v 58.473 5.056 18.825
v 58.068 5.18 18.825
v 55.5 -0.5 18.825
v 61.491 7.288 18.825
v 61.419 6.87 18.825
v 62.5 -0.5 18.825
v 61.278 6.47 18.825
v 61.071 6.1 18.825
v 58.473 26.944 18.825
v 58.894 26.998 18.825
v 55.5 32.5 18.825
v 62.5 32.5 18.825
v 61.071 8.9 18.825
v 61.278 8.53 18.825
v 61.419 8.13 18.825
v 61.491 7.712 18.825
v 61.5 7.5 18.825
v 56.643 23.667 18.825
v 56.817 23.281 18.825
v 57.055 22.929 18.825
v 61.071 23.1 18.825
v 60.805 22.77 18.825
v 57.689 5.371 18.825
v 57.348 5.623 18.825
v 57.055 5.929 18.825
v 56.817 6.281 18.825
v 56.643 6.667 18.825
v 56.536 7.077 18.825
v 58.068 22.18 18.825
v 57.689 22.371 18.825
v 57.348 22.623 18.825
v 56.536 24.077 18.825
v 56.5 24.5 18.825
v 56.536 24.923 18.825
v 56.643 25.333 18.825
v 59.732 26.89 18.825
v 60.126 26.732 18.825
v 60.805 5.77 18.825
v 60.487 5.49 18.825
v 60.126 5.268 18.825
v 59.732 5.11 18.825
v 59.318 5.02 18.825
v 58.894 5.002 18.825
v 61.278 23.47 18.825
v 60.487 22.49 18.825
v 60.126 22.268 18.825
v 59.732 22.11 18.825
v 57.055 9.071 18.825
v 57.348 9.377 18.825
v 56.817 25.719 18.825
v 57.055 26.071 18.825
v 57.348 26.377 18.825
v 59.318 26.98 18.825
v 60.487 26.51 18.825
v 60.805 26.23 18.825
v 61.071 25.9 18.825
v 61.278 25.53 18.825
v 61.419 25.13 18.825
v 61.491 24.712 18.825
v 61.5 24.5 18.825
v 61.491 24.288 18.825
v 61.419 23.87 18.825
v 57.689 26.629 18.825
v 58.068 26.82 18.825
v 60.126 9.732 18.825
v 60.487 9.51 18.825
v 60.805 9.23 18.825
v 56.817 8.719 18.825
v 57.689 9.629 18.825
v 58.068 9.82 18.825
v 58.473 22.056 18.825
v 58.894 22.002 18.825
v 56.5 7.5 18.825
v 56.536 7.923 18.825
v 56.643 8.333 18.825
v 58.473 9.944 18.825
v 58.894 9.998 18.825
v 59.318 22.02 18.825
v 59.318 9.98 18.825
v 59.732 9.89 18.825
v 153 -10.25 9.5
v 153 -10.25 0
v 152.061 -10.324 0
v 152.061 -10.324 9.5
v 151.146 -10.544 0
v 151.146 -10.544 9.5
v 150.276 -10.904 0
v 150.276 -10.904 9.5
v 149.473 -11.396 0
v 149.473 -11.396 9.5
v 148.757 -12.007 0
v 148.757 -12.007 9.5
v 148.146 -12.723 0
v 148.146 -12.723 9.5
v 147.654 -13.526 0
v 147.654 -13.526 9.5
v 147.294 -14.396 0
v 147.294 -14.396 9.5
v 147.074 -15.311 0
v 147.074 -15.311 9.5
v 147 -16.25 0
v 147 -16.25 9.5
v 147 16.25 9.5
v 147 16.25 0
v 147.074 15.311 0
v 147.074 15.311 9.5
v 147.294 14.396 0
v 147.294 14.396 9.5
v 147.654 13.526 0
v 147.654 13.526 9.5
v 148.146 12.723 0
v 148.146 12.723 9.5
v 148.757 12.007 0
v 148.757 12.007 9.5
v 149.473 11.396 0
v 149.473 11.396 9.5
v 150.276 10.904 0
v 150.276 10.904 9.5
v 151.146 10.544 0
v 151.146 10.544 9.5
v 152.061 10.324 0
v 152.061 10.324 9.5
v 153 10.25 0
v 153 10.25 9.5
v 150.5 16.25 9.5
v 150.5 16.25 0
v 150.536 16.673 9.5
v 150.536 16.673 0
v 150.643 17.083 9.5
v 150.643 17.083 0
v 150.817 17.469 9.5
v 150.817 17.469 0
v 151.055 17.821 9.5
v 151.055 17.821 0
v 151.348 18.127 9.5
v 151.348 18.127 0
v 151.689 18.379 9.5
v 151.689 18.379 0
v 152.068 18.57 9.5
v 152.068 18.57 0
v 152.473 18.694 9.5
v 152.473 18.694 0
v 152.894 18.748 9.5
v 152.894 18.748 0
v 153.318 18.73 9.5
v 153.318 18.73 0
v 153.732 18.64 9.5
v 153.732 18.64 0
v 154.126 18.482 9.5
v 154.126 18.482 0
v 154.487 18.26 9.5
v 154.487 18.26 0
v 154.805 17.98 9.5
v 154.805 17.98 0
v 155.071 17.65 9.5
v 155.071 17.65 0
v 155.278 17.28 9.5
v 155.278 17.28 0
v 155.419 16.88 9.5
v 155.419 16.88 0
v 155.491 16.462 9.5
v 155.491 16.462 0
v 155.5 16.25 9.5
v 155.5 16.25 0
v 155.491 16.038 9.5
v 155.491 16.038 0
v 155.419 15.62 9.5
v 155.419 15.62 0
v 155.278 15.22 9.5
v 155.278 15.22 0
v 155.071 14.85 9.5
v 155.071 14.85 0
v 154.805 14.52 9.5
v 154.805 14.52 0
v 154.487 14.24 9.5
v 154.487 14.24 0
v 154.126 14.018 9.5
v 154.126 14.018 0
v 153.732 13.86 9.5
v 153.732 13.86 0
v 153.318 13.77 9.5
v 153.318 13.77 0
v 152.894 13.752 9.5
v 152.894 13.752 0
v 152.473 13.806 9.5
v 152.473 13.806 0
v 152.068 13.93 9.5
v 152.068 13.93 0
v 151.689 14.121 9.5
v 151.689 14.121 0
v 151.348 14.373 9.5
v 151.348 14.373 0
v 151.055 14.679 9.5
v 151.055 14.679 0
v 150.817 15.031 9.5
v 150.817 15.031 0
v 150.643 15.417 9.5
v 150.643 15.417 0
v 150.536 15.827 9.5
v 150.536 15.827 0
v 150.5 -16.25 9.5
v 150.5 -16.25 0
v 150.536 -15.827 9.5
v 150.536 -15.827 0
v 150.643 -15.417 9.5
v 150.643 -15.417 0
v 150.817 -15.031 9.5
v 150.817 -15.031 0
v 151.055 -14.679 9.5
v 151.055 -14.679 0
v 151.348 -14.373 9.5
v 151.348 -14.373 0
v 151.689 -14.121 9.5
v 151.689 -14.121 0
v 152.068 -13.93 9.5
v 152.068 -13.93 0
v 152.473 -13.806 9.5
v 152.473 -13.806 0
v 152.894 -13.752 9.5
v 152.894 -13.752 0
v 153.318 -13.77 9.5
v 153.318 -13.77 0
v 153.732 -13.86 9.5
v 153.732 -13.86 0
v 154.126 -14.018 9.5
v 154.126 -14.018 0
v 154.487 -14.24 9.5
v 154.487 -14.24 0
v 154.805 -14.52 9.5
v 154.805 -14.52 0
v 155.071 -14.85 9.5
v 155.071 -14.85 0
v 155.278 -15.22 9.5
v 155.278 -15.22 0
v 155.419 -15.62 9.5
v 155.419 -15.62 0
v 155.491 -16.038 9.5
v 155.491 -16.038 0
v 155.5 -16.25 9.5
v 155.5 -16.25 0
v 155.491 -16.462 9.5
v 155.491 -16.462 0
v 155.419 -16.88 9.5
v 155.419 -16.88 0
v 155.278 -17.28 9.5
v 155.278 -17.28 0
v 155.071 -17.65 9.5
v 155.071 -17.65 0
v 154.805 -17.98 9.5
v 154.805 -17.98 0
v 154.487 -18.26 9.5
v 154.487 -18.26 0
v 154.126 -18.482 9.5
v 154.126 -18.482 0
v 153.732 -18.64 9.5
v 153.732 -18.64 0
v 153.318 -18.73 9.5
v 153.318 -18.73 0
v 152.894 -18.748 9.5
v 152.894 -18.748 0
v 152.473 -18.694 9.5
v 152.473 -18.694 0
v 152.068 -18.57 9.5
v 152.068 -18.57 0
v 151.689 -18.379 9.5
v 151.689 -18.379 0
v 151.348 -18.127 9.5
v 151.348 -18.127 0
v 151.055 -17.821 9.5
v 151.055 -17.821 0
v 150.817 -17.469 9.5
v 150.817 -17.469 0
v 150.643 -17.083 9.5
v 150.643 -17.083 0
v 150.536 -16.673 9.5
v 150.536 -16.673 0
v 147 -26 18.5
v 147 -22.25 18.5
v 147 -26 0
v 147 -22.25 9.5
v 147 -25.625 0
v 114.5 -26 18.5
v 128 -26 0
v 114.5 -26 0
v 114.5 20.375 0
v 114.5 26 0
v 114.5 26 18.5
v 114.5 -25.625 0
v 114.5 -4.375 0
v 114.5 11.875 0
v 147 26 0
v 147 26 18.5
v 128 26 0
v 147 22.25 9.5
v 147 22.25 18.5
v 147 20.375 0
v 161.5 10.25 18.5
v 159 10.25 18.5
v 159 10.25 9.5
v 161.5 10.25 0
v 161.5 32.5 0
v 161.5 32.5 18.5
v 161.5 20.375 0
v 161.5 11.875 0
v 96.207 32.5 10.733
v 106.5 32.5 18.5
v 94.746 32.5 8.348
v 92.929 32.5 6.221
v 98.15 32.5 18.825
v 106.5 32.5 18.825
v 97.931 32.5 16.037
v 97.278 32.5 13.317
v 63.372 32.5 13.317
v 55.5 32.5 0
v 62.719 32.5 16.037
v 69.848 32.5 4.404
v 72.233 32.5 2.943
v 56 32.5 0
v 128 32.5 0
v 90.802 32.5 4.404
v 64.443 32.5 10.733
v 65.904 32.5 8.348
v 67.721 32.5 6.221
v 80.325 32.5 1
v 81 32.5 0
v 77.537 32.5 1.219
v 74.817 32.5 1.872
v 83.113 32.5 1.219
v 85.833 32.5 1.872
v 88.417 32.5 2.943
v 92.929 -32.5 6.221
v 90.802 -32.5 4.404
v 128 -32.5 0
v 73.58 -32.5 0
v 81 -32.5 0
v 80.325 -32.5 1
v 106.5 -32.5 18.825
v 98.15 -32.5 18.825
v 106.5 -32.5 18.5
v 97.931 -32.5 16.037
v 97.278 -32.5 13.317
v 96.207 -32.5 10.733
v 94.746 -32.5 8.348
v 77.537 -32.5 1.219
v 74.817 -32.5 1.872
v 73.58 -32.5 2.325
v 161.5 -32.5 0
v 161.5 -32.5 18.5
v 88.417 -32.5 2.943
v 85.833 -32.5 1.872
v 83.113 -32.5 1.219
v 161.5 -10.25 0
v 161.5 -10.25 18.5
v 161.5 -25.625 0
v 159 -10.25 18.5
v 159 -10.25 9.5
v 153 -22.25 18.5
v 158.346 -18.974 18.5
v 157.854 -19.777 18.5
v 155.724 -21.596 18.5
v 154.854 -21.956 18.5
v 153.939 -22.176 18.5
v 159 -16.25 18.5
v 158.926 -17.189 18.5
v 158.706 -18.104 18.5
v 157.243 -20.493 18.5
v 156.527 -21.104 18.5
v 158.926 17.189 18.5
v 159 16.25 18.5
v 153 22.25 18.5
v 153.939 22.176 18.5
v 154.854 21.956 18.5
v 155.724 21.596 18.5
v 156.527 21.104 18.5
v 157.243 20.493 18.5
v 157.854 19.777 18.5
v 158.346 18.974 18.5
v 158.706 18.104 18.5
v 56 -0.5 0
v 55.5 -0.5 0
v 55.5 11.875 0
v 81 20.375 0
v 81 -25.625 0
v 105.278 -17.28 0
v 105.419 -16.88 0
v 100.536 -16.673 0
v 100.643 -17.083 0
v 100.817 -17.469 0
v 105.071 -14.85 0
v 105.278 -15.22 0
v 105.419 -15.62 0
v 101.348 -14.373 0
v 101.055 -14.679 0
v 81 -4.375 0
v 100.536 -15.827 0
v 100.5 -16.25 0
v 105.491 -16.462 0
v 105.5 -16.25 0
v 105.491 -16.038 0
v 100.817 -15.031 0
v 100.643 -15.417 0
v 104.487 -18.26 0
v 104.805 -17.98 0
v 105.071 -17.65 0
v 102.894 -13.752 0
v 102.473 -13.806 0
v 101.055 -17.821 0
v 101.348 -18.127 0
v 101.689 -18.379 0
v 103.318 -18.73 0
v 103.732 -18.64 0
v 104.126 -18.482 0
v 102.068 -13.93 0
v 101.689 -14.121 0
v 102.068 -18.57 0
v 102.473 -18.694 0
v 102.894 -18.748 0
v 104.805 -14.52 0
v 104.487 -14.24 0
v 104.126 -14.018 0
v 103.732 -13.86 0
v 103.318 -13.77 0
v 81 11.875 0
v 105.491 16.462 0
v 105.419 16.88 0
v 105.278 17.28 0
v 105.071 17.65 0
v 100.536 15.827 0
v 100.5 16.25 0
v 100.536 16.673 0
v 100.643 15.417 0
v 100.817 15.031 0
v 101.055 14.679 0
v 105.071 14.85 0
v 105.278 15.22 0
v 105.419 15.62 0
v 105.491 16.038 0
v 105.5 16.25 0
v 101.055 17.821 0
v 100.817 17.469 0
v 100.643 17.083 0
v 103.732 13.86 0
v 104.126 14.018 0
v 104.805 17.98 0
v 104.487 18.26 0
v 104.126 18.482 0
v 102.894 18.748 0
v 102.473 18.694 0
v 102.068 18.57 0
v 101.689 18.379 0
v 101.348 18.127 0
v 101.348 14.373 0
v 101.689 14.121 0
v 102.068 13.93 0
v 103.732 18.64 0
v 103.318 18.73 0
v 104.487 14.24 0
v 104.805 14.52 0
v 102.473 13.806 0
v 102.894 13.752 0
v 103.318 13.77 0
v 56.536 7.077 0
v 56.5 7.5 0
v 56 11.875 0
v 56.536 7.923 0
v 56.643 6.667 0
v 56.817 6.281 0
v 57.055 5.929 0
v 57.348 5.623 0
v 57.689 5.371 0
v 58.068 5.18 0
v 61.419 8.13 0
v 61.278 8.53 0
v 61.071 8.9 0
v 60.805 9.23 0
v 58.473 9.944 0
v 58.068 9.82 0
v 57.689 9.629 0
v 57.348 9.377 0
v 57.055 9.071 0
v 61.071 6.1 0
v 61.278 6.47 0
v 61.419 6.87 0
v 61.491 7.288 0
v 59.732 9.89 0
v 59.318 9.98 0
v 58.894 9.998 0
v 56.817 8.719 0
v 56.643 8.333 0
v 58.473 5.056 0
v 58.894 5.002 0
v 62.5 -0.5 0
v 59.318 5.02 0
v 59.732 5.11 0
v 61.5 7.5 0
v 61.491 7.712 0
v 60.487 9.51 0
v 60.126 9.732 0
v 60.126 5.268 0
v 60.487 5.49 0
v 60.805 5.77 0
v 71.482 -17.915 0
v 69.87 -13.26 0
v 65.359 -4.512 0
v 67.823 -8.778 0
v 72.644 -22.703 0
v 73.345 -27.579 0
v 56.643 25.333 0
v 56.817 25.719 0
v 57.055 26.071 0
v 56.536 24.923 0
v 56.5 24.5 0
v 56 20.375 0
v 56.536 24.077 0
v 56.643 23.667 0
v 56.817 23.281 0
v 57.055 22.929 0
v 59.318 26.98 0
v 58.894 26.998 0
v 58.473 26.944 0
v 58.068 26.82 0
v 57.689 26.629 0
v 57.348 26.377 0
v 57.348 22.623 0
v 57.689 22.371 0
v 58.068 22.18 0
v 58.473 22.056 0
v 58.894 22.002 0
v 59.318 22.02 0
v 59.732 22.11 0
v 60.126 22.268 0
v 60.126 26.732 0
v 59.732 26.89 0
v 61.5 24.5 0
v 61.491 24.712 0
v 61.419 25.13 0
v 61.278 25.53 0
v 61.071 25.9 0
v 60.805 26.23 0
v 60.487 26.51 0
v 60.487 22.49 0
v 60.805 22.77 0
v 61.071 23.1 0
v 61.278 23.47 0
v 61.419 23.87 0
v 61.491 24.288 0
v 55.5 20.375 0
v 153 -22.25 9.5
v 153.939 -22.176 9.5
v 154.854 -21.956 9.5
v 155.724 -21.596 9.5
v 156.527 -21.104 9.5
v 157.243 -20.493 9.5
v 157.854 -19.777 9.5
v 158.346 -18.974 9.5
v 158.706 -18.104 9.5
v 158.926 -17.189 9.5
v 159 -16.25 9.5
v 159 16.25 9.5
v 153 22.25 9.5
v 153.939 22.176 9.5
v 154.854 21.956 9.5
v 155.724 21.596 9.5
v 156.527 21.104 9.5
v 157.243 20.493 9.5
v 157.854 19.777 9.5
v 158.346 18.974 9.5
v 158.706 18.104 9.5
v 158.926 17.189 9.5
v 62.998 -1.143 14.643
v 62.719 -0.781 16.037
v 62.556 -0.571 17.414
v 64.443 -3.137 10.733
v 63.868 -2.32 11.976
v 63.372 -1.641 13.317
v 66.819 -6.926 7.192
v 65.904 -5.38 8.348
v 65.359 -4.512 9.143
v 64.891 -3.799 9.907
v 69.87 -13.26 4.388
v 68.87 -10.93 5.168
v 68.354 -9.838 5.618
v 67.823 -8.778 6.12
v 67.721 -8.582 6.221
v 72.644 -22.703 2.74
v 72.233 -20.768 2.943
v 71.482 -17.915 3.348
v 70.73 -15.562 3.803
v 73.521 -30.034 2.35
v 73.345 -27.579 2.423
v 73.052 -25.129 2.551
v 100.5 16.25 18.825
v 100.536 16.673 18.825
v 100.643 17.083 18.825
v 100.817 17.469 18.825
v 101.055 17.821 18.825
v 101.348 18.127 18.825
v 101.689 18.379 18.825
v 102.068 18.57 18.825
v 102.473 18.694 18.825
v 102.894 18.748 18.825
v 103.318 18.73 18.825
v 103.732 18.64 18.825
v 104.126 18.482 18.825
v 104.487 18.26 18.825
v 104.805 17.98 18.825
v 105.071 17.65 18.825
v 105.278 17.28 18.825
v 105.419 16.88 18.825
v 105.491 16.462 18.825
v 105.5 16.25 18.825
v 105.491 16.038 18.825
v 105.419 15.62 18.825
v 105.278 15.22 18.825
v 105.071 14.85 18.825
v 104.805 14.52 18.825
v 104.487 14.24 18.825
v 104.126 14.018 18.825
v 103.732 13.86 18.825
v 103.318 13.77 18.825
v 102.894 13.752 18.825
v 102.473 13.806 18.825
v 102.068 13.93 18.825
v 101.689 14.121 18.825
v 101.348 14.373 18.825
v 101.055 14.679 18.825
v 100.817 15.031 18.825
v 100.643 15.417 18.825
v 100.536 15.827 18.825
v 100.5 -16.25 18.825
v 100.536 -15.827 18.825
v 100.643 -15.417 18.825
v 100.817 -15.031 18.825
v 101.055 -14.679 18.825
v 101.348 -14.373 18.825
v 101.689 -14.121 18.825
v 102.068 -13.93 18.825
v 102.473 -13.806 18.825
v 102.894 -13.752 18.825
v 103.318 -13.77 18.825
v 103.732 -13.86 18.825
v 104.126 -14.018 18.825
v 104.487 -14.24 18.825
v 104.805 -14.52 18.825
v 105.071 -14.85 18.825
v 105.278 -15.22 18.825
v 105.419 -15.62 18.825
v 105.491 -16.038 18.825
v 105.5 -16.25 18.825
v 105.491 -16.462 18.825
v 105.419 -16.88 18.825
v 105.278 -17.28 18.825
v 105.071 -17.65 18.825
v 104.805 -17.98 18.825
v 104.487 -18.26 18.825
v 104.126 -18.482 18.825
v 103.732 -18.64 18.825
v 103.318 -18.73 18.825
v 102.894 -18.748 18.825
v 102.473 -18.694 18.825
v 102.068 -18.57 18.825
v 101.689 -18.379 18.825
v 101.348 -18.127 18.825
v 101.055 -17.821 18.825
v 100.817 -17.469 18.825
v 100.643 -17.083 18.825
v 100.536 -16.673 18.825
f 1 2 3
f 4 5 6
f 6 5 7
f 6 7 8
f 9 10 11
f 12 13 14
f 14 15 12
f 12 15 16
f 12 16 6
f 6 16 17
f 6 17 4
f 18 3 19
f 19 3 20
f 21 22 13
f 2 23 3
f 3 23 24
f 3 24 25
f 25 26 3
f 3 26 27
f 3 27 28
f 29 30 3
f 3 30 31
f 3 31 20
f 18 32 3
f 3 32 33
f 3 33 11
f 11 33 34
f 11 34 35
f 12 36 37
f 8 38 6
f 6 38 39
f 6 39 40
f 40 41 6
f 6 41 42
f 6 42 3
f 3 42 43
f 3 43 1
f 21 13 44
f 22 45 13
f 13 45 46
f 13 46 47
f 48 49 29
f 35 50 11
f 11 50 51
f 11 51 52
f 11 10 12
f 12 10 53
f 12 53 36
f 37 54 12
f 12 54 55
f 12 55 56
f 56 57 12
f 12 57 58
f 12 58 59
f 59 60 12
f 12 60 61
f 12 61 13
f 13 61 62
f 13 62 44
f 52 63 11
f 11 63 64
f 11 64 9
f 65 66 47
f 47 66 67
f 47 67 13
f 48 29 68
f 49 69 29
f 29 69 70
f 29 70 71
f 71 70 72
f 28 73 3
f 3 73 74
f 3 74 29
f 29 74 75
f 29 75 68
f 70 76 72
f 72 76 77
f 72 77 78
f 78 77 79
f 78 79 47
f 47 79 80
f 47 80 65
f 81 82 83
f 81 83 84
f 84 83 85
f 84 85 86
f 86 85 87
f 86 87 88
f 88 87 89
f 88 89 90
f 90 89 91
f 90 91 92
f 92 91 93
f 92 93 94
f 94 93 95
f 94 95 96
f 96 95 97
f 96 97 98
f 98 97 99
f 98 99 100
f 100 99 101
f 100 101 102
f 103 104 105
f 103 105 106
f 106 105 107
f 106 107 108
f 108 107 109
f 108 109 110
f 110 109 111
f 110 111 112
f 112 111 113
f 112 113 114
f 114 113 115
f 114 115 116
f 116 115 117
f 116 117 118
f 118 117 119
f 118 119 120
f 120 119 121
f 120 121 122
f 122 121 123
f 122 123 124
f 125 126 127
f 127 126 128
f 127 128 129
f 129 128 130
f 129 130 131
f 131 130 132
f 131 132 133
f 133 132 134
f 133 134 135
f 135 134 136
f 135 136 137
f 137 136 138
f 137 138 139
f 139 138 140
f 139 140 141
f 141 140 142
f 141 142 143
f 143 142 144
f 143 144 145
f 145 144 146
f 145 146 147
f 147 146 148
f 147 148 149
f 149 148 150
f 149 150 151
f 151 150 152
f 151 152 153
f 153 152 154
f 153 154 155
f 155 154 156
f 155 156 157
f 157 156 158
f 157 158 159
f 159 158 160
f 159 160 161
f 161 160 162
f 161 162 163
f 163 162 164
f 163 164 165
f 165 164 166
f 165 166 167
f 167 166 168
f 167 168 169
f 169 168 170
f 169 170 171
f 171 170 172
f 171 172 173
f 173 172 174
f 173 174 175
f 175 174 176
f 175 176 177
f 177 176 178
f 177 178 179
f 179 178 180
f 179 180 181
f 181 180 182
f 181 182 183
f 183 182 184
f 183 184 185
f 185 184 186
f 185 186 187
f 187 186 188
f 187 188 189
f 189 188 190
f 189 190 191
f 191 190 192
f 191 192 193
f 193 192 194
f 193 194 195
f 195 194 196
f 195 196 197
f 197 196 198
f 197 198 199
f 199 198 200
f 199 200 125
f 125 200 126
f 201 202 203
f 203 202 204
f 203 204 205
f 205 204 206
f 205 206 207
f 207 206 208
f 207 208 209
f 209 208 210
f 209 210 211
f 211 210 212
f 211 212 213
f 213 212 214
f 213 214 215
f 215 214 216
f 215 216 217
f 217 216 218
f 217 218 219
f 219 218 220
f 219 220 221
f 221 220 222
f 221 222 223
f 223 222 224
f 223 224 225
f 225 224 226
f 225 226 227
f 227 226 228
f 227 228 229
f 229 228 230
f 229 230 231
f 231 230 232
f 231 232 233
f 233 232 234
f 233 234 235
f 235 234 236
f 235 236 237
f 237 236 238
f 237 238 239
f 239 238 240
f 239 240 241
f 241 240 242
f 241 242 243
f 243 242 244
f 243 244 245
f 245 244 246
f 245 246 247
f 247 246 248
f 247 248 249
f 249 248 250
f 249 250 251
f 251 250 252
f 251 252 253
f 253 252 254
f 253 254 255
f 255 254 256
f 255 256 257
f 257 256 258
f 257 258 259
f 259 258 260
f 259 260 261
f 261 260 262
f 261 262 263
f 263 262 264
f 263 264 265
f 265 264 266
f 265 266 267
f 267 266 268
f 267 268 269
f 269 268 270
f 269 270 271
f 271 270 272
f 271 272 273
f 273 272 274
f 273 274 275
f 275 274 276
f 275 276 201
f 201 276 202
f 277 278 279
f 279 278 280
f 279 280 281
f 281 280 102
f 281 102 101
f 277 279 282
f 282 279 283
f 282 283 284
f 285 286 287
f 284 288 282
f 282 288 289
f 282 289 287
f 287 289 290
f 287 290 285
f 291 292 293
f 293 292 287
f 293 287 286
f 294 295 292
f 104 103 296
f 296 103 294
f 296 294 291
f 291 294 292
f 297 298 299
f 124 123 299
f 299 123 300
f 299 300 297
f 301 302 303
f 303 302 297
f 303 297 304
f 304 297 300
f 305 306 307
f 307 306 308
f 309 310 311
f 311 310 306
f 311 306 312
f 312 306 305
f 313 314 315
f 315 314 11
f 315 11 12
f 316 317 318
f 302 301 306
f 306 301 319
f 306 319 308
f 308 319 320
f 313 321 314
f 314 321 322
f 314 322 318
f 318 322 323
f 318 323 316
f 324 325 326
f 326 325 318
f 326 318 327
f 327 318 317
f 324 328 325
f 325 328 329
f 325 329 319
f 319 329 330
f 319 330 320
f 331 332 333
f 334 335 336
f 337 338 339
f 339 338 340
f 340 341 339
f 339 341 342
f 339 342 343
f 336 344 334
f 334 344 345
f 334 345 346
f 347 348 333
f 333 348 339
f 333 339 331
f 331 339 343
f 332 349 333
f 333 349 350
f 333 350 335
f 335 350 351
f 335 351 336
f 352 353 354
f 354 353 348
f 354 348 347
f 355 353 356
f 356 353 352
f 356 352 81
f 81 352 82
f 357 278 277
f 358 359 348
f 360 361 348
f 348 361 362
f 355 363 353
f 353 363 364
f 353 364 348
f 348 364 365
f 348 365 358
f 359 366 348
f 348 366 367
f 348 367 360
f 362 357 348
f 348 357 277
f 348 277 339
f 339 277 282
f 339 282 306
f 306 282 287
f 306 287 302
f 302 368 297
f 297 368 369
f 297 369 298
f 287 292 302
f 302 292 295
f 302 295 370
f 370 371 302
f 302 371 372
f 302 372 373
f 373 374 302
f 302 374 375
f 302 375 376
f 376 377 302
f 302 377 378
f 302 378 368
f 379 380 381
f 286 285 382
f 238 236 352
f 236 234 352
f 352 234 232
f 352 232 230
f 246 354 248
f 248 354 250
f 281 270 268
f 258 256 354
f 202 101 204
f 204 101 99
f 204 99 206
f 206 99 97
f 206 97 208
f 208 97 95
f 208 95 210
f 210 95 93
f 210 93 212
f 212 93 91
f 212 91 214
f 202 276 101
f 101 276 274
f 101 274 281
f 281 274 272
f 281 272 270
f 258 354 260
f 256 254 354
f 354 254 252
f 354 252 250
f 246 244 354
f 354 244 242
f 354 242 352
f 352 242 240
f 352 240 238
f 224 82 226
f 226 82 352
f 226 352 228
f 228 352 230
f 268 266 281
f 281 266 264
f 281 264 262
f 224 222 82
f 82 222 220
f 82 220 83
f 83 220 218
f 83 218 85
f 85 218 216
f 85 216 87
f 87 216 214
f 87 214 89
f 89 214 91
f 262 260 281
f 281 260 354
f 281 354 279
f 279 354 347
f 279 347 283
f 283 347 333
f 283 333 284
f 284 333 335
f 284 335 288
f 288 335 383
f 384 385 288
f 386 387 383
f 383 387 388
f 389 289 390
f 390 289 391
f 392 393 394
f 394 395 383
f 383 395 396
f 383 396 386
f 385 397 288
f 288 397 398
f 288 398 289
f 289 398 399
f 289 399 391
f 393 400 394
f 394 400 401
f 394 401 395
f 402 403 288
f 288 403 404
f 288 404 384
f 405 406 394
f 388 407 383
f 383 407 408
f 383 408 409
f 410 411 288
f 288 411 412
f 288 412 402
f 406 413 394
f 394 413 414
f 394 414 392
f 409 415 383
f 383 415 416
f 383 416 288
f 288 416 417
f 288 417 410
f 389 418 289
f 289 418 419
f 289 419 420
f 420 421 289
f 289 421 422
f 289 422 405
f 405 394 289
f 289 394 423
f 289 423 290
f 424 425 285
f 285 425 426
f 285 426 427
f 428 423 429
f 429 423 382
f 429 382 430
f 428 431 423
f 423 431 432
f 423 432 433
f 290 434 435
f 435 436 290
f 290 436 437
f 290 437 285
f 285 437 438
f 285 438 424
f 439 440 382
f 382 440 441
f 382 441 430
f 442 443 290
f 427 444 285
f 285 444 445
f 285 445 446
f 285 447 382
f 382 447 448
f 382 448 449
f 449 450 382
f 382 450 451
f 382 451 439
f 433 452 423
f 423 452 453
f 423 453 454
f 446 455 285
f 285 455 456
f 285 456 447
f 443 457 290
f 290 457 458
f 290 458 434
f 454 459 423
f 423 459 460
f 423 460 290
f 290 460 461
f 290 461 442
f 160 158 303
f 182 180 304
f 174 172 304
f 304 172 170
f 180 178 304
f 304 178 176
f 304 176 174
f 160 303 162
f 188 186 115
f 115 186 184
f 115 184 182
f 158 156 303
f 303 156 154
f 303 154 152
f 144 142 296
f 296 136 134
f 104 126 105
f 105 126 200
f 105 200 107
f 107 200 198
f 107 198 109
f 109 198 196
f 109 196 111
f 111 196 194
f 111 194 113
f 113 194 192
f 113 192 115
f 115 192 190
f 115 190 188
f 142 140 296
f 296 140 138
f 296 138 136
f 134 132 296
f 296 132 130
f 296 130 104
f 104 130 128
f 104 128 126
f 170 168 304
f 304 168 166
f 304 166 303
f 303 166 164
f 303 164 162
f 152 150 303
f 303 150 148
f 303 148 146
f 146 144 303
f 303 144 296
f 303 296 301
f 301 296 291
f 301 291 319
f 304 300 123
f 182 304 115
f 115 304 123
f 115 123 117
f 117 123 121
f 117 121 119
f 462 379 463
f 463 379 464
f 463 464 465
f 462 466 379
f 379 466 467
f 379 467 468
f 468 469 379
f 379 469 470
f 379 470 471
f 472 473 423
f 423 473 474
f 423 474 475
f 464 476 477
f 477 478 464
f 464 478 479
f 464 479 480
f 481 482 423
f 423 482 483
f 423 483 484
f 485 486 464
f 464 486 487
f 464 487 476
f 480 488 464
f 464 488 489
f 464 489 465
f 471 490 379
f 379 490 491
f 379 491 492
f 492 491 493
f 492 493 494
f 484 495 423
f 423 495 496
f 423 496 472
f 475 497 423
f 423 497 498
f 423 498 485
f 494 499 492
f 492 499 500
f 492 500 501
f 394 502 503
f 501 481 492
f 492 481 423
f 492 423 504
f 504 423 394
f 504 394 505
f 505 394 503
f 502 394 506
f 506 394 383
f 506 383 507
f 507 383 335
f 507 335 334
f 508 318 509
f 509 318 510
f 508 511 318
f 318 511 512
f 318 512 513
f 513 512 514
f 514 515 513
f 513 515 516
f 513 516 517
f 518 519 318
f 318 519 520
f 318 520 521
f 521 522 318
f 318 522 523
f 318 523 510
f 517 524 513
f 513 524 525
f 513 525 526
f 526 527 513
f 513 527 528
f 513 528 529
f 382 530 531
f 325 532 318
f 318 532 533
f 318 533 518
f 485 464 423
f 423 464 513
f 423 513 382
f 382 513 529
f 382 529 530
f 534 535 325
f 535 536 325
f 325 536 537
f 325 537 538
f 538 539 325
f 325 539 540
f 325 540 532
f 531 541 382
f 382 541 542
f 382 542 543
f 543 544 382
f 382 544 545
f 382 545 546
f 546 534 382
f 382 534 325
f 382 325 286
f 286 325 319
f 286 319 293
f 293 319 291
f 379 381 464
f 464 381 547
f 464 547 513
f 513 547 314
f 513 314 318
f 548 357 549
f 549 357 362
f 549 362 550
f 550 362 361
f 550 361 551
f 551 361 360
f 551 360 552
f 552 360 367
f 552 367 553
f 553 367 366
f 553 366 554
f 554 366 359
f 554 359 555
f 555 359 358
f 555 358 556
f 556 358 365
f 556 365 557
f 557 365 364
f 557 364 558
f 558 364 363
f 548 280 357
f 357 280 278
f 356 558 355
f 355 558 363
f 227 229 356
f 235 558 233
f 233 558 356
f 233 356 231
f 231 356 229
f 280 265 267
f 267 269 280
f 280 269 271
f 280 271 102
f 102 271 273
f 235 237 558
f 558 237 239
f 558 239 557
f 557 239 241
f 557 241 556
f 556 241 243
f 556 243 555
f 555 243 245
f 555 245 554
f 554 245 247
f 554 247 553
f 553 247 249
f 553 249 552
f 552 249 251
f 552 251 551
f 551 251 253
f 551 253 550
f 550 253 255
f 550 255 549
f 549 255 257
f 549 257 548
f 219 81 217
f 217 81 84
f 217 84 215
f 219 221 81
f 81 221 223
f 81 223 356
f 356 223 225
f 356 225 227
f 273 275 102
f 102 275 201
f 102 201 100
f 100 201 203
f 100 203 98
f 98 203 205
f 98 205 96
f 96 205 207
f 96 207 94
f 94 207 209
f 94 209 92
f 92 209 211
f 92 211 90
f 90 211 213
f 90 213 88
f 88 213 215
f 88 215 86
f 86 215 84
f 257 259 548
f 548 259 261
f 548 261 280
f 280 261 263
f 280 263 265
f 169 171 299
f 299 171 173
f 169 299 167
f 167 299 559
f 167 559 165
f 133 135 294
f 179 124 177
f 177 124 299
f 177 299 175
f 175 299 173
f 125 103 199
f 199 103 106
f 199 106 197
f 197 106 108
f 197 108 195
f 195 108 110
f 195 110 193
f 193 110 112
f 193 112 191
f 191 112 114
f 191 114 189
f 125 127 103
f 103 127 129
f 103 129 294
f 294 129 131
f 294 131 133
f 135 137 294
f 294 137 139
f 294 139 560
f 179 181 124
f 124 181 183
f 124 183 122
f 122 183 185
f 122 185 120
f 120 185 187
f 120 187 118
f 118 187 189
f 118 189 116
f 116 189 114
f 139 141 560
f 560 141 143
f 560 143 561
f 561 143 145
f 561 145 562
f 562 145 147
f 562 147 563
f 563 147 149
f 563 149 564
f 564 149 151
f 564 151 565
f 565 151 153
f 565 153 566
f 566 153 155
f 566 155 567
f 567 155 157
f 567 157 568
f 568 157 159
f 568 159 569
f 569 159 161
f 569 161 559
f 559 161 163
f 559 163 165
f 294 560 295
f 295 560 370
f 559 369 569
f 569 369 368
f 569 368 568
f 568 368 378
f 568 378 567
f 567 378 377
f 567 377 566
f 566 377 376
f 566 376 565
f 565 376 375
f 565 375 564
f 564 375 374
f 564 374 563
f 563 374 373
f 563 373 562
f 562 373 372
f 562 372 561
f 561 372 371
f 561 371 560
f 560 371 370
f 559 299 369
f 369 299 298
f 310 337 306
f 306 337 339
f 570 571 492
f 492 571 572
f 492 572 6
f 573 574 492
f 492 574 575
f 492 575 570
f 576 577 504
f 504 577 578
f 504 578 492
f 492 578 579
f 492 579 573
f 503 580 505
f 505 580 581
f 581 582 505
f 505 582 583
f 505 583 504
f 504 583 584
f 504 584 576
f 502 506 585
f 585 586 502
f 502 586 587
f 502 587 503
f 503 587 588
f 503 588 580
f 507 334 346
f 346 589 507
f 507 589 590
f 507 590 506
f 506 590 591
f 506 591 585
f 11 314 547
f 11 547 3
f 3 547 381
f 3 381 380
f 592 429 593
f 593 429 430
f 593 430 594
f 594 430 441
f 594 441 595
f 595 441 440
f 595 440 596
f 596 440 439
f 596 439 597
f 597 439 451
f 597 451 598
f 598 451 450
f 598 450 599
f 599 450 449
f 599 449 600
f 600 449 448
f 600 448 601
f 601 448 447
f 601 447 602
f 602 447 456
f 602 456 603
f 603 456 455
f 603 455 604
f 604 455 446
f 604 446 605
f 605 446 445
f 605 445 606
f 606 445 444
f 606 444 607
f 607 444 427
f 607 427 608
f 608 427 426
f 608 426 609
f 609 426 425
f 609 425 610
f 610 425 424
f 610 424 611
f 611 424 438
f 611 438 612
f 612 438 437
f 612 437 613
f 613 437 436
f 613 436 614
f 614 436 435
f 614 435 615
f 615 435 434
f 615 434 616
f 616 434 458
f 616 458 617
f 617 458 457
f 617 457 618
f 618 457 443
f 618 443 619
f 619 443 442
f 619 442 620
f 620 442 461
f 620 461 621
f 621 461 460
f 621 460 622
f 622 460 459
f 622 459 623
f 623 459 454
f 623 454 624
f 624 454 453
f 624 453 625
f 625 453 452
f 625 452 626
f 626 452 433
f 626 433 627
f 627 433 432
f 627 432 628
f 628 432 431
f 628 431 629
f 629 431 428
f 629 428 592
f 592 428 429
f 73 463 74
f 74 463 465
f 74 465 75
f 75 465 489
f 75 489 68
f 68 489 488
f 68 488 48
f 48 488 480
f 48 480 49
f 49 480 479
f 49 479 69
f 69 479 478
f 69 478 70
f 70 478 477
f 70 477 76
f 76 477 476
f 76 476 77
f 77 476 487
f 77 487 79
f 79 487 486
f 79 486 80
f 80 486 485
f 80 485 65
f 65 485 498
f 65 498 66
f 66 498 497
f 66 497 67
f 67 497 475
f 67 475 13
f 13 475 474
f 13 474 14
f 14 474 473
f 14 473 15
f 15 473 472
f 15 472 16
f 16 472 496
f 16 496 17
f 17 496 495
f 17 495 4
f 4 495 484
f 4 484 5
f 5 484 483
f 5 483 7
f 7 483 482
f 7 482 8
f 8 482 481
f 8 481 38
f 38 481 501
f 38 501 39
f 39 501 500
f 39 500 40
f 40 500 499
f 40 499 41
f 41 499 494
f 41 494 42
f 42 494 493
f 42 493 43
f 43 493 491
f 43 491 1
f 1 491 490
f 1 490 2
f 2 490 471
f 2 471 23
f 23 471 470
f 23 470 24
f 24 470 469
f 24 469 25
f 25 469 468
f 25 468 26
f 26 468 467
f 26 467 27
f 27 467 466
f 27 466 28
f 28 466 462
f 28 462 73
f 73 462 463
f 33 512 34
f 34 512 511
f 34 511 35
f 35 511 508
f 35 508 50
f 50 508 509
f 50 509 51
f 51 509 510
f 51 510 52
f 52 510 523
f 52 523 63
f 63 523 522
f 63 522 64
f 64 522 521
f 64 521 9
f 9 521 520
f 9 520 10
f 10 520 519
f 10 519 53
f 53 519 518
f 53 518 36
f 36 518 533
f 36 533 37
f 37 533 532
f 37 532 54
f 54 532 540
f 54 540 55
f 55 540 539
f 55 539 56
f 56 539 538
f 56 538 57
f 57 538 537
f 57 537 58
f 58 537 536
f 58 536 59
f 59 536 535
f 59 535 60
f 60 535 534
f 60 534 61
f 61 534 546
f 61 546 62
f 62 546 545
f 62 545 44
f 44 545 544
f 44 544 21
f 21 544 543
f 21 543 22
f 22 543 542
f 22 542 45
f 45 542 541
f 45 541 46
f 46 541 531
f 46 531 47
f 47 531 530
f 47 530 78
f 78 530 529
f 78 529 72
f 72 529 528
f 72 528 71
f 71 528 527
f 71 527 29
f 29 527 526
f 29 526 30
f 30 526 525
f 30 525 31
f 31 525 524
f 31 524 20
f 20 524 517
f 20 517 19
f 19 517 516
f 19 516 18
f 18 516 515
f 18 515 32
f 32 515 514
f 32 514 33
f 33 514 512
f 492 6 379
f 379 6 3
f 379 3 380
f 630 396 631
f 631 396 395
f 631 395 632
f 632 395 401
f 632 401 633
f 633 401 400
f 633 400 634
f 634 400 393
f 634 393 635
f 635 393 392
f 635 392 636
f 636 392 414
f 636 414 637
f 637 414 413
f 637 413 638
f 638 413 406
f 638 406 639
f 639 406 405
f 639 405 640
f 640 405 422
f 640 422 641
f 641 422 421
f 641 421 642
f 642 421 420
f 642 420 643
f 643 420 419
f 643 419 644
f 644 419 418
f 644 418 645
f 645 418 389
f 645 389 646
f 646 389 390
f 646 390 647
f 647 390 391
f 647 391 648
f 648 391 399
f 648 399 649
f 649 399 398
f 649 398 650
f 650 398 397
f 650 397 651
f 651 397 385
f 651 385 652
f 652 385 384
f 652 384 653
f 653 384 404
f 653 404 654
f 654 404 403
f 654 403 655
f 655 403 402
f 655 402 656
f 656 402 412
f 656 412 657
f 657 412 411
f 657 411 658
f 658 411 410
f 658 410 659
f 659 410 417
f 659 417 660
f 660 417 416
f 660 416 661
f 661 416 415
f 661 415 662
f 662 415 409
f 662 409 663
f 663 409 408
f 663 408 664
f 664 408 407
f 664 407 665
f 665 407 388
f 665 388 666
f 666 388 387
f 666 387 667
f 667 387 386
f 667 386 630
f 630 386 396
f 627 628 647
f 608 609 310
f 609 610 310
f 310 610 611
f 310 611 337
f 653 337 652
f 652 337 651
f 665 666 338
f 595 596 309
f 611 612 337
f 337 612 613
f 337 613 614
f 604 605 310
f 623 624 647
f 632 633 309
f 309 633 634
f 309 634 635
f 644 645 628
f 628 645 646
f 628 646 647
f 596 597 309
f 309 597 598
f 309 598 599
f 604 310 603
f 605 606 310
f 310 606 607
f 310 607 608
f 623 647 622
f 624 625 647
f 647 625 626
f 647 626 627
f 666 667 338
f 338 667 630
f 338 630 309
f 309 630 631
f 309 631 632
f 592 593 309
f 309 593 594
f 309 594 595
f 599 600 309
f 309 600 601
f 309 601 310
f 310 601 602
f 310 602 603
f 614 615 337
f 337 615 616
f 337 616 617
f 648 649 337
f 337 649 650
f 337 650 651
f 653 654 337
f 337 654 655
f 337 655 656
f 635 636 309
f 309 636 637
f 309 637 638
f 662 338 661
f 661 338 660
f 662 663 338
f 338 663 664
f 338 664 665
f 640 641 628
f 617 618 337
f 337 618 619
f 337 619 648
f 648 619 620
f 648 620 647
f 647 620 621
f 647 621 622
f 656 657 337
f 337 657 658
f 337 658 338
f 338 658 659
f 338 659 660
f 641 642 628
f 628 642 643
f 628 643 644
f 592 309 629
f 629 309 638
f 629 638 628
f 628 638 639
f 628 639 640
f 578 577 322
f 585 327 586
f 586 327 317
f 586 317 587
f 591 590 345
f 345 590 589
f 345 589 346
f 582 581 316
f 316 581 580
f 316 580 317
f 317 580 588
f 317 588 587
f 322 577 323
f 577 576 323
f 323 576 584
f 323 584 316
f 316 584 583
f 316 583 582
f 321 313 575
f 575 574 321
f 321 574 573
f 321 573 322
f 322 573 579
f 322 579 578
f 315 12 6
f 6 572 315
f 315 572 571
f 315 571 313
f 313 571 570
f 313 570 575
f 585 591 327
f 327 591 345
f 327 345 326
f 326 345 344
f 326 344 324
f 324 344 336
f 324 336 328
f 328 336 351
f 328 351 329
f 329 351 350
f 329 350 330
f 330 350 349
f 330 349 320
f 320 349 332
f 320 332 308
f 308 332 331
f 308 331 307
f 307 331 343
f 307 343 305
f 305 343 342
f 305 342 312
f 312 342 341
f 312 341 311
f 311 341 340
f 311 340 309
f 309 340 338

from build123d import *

# Parameters (mm, degrees)
SKETCH1_R           = 2.5
BOSS_EXTRUDE3_DEPTH = 18.5
CUT_EXTRUDE2_START  = -9
CUT_EXTRUDE2_DEPTH  = 9
SKETCH1_5_R         = 2.5
BOSS_EXTRUDE4_DEPTH = 18.825
SKETCH3_R           = 17.825
CUT_EXTRUDE3_DEPTH  = 176.104627652


with BuildPart() as part:
    # Sketch1 → Boss-Extrude3 (new body)
    with BuildSketch(Plane.XY):
        with BuildLine():
            Line((161.5, 32.5), (147, 32.5))
            Line((147, 32.5), (106.5, 32.5))
            Line((106.5, 32.5), (106.5, -32.5))
            Line((106.5, -32.5), (147, -32.5))
            Line((147, -32.5), (161.5, -32.5))
            Line((161.5, -32.5), (161.5, -10.25))
            Line((161.5, -10.25), (153, -10.25))
            ThreePointArc((153, -10.25), (148.757359313, -12.007359313), (147, -16.25))
            Line((147, -16.25), (147, -26))
            Line((147, -26), (114.5, -26))
            Line((114.5, -26), (114.5, 26))
            Line((114.5, 26), (147, 26))
            Line((147, 26), (147, 16.25))
            ThreePointArc((147, 16.25), (148.757359313, 12.007359313), (153, 10.25))
            Line((153, 10.25), (161.5, 10.25))
            Line((161.5, 10.25), (161.5, 32.5))
        make_face()
        with Locations((153, -16.25)):
            Circle(SKETCH1_R, mode=Mode.SUBTRACT)
        with Locations((153, 16.25)):
            Circle(SKETCH1_R, mode=Mode.SUBTRACT)
    extrude(amount=BOSS_EXTRUDE3_DEPTH)

    # Sketch2 → Cut-Extrude2 (cut)
    with BuildSketch(Plane.XY.offset(18.5).offset(CUT_EXTRUDE2_START)):
        with BuildLine():
            Line((153, 22.25), (147, 22.25))
            Line((147, 22.25), (147, 10.25))
            Line((147, 10.25), (159, 10.25))
            Line((159, 10.25), (159, 16.25))
            ThreePointArc((159, 16.25), (157.242640687, 20.492640687), (153, 22.25))
        make_face()
        with BuildLine():
            Line((153, -22.25), (147, -22.25))
            Line((147, -22.25), (147, -10.25))
            Line((147, -10.25), (159, -10.25))
            Line((159, -10.25), (159, -16.25))
            ThreePointArc((159, -16.25), (157.242640687, -20.492640687), (153, -22.25))
        make_face()
    extrude(amount=CUT_EXTRUDE2_DEPTH, mode=Mode.SUBTRACT)

    # Sketch1<5> → Boss-Extrude4 (add)
    with BuildSketch(Plane.XY):
        with BuildLine():
            Line((106.5, -32.5), (106.5, 32.5))
            Line((106.5, 32.5), (55.5, 32.5))
            Line((55.5, 32.5), (55.5, -0.5))
            Line((55.5, -0.5), (62.5, -0.5))
            ThreePointArc((62.5, -0.5), (70.731609419, -15.568030239), (73.58, -32.5))
            Line((73.58, -32.5), (106.5, -32.5))
        make_face()
        with Locations((103, -16.25)):
            Circle(SKETCH1_5_R, mode=Mode.SUBTRACT)
        with Locations((103, 16.25)):
            Circle(SKETCH1_5_R, mode=Mode.SUBTRACT)
        with Locations((59, 24.5)):
            Circle(SKETCH1_5_R, mode=Mode.SUBTRACT)
        with Locations((59, 7.5)):
            Circle(SKETCH1_5_R, mode=Mode.SUBTRACT)
    extrude(amount=BOSS_EXTRUDE4_DEPTH)

    # Sketch3 → Cut-Extrude3 (cut, through all)
    with BuildSketch(Plane.XZ.offset(32.5)):
        with Locations((80.325, 18.825)):
            Circle(SKETCH3_R)
    extrude(amount=-CUT_EXTRUDE3_DEPTH, mode=Mode.SUBTRACT)


solid = part.part
